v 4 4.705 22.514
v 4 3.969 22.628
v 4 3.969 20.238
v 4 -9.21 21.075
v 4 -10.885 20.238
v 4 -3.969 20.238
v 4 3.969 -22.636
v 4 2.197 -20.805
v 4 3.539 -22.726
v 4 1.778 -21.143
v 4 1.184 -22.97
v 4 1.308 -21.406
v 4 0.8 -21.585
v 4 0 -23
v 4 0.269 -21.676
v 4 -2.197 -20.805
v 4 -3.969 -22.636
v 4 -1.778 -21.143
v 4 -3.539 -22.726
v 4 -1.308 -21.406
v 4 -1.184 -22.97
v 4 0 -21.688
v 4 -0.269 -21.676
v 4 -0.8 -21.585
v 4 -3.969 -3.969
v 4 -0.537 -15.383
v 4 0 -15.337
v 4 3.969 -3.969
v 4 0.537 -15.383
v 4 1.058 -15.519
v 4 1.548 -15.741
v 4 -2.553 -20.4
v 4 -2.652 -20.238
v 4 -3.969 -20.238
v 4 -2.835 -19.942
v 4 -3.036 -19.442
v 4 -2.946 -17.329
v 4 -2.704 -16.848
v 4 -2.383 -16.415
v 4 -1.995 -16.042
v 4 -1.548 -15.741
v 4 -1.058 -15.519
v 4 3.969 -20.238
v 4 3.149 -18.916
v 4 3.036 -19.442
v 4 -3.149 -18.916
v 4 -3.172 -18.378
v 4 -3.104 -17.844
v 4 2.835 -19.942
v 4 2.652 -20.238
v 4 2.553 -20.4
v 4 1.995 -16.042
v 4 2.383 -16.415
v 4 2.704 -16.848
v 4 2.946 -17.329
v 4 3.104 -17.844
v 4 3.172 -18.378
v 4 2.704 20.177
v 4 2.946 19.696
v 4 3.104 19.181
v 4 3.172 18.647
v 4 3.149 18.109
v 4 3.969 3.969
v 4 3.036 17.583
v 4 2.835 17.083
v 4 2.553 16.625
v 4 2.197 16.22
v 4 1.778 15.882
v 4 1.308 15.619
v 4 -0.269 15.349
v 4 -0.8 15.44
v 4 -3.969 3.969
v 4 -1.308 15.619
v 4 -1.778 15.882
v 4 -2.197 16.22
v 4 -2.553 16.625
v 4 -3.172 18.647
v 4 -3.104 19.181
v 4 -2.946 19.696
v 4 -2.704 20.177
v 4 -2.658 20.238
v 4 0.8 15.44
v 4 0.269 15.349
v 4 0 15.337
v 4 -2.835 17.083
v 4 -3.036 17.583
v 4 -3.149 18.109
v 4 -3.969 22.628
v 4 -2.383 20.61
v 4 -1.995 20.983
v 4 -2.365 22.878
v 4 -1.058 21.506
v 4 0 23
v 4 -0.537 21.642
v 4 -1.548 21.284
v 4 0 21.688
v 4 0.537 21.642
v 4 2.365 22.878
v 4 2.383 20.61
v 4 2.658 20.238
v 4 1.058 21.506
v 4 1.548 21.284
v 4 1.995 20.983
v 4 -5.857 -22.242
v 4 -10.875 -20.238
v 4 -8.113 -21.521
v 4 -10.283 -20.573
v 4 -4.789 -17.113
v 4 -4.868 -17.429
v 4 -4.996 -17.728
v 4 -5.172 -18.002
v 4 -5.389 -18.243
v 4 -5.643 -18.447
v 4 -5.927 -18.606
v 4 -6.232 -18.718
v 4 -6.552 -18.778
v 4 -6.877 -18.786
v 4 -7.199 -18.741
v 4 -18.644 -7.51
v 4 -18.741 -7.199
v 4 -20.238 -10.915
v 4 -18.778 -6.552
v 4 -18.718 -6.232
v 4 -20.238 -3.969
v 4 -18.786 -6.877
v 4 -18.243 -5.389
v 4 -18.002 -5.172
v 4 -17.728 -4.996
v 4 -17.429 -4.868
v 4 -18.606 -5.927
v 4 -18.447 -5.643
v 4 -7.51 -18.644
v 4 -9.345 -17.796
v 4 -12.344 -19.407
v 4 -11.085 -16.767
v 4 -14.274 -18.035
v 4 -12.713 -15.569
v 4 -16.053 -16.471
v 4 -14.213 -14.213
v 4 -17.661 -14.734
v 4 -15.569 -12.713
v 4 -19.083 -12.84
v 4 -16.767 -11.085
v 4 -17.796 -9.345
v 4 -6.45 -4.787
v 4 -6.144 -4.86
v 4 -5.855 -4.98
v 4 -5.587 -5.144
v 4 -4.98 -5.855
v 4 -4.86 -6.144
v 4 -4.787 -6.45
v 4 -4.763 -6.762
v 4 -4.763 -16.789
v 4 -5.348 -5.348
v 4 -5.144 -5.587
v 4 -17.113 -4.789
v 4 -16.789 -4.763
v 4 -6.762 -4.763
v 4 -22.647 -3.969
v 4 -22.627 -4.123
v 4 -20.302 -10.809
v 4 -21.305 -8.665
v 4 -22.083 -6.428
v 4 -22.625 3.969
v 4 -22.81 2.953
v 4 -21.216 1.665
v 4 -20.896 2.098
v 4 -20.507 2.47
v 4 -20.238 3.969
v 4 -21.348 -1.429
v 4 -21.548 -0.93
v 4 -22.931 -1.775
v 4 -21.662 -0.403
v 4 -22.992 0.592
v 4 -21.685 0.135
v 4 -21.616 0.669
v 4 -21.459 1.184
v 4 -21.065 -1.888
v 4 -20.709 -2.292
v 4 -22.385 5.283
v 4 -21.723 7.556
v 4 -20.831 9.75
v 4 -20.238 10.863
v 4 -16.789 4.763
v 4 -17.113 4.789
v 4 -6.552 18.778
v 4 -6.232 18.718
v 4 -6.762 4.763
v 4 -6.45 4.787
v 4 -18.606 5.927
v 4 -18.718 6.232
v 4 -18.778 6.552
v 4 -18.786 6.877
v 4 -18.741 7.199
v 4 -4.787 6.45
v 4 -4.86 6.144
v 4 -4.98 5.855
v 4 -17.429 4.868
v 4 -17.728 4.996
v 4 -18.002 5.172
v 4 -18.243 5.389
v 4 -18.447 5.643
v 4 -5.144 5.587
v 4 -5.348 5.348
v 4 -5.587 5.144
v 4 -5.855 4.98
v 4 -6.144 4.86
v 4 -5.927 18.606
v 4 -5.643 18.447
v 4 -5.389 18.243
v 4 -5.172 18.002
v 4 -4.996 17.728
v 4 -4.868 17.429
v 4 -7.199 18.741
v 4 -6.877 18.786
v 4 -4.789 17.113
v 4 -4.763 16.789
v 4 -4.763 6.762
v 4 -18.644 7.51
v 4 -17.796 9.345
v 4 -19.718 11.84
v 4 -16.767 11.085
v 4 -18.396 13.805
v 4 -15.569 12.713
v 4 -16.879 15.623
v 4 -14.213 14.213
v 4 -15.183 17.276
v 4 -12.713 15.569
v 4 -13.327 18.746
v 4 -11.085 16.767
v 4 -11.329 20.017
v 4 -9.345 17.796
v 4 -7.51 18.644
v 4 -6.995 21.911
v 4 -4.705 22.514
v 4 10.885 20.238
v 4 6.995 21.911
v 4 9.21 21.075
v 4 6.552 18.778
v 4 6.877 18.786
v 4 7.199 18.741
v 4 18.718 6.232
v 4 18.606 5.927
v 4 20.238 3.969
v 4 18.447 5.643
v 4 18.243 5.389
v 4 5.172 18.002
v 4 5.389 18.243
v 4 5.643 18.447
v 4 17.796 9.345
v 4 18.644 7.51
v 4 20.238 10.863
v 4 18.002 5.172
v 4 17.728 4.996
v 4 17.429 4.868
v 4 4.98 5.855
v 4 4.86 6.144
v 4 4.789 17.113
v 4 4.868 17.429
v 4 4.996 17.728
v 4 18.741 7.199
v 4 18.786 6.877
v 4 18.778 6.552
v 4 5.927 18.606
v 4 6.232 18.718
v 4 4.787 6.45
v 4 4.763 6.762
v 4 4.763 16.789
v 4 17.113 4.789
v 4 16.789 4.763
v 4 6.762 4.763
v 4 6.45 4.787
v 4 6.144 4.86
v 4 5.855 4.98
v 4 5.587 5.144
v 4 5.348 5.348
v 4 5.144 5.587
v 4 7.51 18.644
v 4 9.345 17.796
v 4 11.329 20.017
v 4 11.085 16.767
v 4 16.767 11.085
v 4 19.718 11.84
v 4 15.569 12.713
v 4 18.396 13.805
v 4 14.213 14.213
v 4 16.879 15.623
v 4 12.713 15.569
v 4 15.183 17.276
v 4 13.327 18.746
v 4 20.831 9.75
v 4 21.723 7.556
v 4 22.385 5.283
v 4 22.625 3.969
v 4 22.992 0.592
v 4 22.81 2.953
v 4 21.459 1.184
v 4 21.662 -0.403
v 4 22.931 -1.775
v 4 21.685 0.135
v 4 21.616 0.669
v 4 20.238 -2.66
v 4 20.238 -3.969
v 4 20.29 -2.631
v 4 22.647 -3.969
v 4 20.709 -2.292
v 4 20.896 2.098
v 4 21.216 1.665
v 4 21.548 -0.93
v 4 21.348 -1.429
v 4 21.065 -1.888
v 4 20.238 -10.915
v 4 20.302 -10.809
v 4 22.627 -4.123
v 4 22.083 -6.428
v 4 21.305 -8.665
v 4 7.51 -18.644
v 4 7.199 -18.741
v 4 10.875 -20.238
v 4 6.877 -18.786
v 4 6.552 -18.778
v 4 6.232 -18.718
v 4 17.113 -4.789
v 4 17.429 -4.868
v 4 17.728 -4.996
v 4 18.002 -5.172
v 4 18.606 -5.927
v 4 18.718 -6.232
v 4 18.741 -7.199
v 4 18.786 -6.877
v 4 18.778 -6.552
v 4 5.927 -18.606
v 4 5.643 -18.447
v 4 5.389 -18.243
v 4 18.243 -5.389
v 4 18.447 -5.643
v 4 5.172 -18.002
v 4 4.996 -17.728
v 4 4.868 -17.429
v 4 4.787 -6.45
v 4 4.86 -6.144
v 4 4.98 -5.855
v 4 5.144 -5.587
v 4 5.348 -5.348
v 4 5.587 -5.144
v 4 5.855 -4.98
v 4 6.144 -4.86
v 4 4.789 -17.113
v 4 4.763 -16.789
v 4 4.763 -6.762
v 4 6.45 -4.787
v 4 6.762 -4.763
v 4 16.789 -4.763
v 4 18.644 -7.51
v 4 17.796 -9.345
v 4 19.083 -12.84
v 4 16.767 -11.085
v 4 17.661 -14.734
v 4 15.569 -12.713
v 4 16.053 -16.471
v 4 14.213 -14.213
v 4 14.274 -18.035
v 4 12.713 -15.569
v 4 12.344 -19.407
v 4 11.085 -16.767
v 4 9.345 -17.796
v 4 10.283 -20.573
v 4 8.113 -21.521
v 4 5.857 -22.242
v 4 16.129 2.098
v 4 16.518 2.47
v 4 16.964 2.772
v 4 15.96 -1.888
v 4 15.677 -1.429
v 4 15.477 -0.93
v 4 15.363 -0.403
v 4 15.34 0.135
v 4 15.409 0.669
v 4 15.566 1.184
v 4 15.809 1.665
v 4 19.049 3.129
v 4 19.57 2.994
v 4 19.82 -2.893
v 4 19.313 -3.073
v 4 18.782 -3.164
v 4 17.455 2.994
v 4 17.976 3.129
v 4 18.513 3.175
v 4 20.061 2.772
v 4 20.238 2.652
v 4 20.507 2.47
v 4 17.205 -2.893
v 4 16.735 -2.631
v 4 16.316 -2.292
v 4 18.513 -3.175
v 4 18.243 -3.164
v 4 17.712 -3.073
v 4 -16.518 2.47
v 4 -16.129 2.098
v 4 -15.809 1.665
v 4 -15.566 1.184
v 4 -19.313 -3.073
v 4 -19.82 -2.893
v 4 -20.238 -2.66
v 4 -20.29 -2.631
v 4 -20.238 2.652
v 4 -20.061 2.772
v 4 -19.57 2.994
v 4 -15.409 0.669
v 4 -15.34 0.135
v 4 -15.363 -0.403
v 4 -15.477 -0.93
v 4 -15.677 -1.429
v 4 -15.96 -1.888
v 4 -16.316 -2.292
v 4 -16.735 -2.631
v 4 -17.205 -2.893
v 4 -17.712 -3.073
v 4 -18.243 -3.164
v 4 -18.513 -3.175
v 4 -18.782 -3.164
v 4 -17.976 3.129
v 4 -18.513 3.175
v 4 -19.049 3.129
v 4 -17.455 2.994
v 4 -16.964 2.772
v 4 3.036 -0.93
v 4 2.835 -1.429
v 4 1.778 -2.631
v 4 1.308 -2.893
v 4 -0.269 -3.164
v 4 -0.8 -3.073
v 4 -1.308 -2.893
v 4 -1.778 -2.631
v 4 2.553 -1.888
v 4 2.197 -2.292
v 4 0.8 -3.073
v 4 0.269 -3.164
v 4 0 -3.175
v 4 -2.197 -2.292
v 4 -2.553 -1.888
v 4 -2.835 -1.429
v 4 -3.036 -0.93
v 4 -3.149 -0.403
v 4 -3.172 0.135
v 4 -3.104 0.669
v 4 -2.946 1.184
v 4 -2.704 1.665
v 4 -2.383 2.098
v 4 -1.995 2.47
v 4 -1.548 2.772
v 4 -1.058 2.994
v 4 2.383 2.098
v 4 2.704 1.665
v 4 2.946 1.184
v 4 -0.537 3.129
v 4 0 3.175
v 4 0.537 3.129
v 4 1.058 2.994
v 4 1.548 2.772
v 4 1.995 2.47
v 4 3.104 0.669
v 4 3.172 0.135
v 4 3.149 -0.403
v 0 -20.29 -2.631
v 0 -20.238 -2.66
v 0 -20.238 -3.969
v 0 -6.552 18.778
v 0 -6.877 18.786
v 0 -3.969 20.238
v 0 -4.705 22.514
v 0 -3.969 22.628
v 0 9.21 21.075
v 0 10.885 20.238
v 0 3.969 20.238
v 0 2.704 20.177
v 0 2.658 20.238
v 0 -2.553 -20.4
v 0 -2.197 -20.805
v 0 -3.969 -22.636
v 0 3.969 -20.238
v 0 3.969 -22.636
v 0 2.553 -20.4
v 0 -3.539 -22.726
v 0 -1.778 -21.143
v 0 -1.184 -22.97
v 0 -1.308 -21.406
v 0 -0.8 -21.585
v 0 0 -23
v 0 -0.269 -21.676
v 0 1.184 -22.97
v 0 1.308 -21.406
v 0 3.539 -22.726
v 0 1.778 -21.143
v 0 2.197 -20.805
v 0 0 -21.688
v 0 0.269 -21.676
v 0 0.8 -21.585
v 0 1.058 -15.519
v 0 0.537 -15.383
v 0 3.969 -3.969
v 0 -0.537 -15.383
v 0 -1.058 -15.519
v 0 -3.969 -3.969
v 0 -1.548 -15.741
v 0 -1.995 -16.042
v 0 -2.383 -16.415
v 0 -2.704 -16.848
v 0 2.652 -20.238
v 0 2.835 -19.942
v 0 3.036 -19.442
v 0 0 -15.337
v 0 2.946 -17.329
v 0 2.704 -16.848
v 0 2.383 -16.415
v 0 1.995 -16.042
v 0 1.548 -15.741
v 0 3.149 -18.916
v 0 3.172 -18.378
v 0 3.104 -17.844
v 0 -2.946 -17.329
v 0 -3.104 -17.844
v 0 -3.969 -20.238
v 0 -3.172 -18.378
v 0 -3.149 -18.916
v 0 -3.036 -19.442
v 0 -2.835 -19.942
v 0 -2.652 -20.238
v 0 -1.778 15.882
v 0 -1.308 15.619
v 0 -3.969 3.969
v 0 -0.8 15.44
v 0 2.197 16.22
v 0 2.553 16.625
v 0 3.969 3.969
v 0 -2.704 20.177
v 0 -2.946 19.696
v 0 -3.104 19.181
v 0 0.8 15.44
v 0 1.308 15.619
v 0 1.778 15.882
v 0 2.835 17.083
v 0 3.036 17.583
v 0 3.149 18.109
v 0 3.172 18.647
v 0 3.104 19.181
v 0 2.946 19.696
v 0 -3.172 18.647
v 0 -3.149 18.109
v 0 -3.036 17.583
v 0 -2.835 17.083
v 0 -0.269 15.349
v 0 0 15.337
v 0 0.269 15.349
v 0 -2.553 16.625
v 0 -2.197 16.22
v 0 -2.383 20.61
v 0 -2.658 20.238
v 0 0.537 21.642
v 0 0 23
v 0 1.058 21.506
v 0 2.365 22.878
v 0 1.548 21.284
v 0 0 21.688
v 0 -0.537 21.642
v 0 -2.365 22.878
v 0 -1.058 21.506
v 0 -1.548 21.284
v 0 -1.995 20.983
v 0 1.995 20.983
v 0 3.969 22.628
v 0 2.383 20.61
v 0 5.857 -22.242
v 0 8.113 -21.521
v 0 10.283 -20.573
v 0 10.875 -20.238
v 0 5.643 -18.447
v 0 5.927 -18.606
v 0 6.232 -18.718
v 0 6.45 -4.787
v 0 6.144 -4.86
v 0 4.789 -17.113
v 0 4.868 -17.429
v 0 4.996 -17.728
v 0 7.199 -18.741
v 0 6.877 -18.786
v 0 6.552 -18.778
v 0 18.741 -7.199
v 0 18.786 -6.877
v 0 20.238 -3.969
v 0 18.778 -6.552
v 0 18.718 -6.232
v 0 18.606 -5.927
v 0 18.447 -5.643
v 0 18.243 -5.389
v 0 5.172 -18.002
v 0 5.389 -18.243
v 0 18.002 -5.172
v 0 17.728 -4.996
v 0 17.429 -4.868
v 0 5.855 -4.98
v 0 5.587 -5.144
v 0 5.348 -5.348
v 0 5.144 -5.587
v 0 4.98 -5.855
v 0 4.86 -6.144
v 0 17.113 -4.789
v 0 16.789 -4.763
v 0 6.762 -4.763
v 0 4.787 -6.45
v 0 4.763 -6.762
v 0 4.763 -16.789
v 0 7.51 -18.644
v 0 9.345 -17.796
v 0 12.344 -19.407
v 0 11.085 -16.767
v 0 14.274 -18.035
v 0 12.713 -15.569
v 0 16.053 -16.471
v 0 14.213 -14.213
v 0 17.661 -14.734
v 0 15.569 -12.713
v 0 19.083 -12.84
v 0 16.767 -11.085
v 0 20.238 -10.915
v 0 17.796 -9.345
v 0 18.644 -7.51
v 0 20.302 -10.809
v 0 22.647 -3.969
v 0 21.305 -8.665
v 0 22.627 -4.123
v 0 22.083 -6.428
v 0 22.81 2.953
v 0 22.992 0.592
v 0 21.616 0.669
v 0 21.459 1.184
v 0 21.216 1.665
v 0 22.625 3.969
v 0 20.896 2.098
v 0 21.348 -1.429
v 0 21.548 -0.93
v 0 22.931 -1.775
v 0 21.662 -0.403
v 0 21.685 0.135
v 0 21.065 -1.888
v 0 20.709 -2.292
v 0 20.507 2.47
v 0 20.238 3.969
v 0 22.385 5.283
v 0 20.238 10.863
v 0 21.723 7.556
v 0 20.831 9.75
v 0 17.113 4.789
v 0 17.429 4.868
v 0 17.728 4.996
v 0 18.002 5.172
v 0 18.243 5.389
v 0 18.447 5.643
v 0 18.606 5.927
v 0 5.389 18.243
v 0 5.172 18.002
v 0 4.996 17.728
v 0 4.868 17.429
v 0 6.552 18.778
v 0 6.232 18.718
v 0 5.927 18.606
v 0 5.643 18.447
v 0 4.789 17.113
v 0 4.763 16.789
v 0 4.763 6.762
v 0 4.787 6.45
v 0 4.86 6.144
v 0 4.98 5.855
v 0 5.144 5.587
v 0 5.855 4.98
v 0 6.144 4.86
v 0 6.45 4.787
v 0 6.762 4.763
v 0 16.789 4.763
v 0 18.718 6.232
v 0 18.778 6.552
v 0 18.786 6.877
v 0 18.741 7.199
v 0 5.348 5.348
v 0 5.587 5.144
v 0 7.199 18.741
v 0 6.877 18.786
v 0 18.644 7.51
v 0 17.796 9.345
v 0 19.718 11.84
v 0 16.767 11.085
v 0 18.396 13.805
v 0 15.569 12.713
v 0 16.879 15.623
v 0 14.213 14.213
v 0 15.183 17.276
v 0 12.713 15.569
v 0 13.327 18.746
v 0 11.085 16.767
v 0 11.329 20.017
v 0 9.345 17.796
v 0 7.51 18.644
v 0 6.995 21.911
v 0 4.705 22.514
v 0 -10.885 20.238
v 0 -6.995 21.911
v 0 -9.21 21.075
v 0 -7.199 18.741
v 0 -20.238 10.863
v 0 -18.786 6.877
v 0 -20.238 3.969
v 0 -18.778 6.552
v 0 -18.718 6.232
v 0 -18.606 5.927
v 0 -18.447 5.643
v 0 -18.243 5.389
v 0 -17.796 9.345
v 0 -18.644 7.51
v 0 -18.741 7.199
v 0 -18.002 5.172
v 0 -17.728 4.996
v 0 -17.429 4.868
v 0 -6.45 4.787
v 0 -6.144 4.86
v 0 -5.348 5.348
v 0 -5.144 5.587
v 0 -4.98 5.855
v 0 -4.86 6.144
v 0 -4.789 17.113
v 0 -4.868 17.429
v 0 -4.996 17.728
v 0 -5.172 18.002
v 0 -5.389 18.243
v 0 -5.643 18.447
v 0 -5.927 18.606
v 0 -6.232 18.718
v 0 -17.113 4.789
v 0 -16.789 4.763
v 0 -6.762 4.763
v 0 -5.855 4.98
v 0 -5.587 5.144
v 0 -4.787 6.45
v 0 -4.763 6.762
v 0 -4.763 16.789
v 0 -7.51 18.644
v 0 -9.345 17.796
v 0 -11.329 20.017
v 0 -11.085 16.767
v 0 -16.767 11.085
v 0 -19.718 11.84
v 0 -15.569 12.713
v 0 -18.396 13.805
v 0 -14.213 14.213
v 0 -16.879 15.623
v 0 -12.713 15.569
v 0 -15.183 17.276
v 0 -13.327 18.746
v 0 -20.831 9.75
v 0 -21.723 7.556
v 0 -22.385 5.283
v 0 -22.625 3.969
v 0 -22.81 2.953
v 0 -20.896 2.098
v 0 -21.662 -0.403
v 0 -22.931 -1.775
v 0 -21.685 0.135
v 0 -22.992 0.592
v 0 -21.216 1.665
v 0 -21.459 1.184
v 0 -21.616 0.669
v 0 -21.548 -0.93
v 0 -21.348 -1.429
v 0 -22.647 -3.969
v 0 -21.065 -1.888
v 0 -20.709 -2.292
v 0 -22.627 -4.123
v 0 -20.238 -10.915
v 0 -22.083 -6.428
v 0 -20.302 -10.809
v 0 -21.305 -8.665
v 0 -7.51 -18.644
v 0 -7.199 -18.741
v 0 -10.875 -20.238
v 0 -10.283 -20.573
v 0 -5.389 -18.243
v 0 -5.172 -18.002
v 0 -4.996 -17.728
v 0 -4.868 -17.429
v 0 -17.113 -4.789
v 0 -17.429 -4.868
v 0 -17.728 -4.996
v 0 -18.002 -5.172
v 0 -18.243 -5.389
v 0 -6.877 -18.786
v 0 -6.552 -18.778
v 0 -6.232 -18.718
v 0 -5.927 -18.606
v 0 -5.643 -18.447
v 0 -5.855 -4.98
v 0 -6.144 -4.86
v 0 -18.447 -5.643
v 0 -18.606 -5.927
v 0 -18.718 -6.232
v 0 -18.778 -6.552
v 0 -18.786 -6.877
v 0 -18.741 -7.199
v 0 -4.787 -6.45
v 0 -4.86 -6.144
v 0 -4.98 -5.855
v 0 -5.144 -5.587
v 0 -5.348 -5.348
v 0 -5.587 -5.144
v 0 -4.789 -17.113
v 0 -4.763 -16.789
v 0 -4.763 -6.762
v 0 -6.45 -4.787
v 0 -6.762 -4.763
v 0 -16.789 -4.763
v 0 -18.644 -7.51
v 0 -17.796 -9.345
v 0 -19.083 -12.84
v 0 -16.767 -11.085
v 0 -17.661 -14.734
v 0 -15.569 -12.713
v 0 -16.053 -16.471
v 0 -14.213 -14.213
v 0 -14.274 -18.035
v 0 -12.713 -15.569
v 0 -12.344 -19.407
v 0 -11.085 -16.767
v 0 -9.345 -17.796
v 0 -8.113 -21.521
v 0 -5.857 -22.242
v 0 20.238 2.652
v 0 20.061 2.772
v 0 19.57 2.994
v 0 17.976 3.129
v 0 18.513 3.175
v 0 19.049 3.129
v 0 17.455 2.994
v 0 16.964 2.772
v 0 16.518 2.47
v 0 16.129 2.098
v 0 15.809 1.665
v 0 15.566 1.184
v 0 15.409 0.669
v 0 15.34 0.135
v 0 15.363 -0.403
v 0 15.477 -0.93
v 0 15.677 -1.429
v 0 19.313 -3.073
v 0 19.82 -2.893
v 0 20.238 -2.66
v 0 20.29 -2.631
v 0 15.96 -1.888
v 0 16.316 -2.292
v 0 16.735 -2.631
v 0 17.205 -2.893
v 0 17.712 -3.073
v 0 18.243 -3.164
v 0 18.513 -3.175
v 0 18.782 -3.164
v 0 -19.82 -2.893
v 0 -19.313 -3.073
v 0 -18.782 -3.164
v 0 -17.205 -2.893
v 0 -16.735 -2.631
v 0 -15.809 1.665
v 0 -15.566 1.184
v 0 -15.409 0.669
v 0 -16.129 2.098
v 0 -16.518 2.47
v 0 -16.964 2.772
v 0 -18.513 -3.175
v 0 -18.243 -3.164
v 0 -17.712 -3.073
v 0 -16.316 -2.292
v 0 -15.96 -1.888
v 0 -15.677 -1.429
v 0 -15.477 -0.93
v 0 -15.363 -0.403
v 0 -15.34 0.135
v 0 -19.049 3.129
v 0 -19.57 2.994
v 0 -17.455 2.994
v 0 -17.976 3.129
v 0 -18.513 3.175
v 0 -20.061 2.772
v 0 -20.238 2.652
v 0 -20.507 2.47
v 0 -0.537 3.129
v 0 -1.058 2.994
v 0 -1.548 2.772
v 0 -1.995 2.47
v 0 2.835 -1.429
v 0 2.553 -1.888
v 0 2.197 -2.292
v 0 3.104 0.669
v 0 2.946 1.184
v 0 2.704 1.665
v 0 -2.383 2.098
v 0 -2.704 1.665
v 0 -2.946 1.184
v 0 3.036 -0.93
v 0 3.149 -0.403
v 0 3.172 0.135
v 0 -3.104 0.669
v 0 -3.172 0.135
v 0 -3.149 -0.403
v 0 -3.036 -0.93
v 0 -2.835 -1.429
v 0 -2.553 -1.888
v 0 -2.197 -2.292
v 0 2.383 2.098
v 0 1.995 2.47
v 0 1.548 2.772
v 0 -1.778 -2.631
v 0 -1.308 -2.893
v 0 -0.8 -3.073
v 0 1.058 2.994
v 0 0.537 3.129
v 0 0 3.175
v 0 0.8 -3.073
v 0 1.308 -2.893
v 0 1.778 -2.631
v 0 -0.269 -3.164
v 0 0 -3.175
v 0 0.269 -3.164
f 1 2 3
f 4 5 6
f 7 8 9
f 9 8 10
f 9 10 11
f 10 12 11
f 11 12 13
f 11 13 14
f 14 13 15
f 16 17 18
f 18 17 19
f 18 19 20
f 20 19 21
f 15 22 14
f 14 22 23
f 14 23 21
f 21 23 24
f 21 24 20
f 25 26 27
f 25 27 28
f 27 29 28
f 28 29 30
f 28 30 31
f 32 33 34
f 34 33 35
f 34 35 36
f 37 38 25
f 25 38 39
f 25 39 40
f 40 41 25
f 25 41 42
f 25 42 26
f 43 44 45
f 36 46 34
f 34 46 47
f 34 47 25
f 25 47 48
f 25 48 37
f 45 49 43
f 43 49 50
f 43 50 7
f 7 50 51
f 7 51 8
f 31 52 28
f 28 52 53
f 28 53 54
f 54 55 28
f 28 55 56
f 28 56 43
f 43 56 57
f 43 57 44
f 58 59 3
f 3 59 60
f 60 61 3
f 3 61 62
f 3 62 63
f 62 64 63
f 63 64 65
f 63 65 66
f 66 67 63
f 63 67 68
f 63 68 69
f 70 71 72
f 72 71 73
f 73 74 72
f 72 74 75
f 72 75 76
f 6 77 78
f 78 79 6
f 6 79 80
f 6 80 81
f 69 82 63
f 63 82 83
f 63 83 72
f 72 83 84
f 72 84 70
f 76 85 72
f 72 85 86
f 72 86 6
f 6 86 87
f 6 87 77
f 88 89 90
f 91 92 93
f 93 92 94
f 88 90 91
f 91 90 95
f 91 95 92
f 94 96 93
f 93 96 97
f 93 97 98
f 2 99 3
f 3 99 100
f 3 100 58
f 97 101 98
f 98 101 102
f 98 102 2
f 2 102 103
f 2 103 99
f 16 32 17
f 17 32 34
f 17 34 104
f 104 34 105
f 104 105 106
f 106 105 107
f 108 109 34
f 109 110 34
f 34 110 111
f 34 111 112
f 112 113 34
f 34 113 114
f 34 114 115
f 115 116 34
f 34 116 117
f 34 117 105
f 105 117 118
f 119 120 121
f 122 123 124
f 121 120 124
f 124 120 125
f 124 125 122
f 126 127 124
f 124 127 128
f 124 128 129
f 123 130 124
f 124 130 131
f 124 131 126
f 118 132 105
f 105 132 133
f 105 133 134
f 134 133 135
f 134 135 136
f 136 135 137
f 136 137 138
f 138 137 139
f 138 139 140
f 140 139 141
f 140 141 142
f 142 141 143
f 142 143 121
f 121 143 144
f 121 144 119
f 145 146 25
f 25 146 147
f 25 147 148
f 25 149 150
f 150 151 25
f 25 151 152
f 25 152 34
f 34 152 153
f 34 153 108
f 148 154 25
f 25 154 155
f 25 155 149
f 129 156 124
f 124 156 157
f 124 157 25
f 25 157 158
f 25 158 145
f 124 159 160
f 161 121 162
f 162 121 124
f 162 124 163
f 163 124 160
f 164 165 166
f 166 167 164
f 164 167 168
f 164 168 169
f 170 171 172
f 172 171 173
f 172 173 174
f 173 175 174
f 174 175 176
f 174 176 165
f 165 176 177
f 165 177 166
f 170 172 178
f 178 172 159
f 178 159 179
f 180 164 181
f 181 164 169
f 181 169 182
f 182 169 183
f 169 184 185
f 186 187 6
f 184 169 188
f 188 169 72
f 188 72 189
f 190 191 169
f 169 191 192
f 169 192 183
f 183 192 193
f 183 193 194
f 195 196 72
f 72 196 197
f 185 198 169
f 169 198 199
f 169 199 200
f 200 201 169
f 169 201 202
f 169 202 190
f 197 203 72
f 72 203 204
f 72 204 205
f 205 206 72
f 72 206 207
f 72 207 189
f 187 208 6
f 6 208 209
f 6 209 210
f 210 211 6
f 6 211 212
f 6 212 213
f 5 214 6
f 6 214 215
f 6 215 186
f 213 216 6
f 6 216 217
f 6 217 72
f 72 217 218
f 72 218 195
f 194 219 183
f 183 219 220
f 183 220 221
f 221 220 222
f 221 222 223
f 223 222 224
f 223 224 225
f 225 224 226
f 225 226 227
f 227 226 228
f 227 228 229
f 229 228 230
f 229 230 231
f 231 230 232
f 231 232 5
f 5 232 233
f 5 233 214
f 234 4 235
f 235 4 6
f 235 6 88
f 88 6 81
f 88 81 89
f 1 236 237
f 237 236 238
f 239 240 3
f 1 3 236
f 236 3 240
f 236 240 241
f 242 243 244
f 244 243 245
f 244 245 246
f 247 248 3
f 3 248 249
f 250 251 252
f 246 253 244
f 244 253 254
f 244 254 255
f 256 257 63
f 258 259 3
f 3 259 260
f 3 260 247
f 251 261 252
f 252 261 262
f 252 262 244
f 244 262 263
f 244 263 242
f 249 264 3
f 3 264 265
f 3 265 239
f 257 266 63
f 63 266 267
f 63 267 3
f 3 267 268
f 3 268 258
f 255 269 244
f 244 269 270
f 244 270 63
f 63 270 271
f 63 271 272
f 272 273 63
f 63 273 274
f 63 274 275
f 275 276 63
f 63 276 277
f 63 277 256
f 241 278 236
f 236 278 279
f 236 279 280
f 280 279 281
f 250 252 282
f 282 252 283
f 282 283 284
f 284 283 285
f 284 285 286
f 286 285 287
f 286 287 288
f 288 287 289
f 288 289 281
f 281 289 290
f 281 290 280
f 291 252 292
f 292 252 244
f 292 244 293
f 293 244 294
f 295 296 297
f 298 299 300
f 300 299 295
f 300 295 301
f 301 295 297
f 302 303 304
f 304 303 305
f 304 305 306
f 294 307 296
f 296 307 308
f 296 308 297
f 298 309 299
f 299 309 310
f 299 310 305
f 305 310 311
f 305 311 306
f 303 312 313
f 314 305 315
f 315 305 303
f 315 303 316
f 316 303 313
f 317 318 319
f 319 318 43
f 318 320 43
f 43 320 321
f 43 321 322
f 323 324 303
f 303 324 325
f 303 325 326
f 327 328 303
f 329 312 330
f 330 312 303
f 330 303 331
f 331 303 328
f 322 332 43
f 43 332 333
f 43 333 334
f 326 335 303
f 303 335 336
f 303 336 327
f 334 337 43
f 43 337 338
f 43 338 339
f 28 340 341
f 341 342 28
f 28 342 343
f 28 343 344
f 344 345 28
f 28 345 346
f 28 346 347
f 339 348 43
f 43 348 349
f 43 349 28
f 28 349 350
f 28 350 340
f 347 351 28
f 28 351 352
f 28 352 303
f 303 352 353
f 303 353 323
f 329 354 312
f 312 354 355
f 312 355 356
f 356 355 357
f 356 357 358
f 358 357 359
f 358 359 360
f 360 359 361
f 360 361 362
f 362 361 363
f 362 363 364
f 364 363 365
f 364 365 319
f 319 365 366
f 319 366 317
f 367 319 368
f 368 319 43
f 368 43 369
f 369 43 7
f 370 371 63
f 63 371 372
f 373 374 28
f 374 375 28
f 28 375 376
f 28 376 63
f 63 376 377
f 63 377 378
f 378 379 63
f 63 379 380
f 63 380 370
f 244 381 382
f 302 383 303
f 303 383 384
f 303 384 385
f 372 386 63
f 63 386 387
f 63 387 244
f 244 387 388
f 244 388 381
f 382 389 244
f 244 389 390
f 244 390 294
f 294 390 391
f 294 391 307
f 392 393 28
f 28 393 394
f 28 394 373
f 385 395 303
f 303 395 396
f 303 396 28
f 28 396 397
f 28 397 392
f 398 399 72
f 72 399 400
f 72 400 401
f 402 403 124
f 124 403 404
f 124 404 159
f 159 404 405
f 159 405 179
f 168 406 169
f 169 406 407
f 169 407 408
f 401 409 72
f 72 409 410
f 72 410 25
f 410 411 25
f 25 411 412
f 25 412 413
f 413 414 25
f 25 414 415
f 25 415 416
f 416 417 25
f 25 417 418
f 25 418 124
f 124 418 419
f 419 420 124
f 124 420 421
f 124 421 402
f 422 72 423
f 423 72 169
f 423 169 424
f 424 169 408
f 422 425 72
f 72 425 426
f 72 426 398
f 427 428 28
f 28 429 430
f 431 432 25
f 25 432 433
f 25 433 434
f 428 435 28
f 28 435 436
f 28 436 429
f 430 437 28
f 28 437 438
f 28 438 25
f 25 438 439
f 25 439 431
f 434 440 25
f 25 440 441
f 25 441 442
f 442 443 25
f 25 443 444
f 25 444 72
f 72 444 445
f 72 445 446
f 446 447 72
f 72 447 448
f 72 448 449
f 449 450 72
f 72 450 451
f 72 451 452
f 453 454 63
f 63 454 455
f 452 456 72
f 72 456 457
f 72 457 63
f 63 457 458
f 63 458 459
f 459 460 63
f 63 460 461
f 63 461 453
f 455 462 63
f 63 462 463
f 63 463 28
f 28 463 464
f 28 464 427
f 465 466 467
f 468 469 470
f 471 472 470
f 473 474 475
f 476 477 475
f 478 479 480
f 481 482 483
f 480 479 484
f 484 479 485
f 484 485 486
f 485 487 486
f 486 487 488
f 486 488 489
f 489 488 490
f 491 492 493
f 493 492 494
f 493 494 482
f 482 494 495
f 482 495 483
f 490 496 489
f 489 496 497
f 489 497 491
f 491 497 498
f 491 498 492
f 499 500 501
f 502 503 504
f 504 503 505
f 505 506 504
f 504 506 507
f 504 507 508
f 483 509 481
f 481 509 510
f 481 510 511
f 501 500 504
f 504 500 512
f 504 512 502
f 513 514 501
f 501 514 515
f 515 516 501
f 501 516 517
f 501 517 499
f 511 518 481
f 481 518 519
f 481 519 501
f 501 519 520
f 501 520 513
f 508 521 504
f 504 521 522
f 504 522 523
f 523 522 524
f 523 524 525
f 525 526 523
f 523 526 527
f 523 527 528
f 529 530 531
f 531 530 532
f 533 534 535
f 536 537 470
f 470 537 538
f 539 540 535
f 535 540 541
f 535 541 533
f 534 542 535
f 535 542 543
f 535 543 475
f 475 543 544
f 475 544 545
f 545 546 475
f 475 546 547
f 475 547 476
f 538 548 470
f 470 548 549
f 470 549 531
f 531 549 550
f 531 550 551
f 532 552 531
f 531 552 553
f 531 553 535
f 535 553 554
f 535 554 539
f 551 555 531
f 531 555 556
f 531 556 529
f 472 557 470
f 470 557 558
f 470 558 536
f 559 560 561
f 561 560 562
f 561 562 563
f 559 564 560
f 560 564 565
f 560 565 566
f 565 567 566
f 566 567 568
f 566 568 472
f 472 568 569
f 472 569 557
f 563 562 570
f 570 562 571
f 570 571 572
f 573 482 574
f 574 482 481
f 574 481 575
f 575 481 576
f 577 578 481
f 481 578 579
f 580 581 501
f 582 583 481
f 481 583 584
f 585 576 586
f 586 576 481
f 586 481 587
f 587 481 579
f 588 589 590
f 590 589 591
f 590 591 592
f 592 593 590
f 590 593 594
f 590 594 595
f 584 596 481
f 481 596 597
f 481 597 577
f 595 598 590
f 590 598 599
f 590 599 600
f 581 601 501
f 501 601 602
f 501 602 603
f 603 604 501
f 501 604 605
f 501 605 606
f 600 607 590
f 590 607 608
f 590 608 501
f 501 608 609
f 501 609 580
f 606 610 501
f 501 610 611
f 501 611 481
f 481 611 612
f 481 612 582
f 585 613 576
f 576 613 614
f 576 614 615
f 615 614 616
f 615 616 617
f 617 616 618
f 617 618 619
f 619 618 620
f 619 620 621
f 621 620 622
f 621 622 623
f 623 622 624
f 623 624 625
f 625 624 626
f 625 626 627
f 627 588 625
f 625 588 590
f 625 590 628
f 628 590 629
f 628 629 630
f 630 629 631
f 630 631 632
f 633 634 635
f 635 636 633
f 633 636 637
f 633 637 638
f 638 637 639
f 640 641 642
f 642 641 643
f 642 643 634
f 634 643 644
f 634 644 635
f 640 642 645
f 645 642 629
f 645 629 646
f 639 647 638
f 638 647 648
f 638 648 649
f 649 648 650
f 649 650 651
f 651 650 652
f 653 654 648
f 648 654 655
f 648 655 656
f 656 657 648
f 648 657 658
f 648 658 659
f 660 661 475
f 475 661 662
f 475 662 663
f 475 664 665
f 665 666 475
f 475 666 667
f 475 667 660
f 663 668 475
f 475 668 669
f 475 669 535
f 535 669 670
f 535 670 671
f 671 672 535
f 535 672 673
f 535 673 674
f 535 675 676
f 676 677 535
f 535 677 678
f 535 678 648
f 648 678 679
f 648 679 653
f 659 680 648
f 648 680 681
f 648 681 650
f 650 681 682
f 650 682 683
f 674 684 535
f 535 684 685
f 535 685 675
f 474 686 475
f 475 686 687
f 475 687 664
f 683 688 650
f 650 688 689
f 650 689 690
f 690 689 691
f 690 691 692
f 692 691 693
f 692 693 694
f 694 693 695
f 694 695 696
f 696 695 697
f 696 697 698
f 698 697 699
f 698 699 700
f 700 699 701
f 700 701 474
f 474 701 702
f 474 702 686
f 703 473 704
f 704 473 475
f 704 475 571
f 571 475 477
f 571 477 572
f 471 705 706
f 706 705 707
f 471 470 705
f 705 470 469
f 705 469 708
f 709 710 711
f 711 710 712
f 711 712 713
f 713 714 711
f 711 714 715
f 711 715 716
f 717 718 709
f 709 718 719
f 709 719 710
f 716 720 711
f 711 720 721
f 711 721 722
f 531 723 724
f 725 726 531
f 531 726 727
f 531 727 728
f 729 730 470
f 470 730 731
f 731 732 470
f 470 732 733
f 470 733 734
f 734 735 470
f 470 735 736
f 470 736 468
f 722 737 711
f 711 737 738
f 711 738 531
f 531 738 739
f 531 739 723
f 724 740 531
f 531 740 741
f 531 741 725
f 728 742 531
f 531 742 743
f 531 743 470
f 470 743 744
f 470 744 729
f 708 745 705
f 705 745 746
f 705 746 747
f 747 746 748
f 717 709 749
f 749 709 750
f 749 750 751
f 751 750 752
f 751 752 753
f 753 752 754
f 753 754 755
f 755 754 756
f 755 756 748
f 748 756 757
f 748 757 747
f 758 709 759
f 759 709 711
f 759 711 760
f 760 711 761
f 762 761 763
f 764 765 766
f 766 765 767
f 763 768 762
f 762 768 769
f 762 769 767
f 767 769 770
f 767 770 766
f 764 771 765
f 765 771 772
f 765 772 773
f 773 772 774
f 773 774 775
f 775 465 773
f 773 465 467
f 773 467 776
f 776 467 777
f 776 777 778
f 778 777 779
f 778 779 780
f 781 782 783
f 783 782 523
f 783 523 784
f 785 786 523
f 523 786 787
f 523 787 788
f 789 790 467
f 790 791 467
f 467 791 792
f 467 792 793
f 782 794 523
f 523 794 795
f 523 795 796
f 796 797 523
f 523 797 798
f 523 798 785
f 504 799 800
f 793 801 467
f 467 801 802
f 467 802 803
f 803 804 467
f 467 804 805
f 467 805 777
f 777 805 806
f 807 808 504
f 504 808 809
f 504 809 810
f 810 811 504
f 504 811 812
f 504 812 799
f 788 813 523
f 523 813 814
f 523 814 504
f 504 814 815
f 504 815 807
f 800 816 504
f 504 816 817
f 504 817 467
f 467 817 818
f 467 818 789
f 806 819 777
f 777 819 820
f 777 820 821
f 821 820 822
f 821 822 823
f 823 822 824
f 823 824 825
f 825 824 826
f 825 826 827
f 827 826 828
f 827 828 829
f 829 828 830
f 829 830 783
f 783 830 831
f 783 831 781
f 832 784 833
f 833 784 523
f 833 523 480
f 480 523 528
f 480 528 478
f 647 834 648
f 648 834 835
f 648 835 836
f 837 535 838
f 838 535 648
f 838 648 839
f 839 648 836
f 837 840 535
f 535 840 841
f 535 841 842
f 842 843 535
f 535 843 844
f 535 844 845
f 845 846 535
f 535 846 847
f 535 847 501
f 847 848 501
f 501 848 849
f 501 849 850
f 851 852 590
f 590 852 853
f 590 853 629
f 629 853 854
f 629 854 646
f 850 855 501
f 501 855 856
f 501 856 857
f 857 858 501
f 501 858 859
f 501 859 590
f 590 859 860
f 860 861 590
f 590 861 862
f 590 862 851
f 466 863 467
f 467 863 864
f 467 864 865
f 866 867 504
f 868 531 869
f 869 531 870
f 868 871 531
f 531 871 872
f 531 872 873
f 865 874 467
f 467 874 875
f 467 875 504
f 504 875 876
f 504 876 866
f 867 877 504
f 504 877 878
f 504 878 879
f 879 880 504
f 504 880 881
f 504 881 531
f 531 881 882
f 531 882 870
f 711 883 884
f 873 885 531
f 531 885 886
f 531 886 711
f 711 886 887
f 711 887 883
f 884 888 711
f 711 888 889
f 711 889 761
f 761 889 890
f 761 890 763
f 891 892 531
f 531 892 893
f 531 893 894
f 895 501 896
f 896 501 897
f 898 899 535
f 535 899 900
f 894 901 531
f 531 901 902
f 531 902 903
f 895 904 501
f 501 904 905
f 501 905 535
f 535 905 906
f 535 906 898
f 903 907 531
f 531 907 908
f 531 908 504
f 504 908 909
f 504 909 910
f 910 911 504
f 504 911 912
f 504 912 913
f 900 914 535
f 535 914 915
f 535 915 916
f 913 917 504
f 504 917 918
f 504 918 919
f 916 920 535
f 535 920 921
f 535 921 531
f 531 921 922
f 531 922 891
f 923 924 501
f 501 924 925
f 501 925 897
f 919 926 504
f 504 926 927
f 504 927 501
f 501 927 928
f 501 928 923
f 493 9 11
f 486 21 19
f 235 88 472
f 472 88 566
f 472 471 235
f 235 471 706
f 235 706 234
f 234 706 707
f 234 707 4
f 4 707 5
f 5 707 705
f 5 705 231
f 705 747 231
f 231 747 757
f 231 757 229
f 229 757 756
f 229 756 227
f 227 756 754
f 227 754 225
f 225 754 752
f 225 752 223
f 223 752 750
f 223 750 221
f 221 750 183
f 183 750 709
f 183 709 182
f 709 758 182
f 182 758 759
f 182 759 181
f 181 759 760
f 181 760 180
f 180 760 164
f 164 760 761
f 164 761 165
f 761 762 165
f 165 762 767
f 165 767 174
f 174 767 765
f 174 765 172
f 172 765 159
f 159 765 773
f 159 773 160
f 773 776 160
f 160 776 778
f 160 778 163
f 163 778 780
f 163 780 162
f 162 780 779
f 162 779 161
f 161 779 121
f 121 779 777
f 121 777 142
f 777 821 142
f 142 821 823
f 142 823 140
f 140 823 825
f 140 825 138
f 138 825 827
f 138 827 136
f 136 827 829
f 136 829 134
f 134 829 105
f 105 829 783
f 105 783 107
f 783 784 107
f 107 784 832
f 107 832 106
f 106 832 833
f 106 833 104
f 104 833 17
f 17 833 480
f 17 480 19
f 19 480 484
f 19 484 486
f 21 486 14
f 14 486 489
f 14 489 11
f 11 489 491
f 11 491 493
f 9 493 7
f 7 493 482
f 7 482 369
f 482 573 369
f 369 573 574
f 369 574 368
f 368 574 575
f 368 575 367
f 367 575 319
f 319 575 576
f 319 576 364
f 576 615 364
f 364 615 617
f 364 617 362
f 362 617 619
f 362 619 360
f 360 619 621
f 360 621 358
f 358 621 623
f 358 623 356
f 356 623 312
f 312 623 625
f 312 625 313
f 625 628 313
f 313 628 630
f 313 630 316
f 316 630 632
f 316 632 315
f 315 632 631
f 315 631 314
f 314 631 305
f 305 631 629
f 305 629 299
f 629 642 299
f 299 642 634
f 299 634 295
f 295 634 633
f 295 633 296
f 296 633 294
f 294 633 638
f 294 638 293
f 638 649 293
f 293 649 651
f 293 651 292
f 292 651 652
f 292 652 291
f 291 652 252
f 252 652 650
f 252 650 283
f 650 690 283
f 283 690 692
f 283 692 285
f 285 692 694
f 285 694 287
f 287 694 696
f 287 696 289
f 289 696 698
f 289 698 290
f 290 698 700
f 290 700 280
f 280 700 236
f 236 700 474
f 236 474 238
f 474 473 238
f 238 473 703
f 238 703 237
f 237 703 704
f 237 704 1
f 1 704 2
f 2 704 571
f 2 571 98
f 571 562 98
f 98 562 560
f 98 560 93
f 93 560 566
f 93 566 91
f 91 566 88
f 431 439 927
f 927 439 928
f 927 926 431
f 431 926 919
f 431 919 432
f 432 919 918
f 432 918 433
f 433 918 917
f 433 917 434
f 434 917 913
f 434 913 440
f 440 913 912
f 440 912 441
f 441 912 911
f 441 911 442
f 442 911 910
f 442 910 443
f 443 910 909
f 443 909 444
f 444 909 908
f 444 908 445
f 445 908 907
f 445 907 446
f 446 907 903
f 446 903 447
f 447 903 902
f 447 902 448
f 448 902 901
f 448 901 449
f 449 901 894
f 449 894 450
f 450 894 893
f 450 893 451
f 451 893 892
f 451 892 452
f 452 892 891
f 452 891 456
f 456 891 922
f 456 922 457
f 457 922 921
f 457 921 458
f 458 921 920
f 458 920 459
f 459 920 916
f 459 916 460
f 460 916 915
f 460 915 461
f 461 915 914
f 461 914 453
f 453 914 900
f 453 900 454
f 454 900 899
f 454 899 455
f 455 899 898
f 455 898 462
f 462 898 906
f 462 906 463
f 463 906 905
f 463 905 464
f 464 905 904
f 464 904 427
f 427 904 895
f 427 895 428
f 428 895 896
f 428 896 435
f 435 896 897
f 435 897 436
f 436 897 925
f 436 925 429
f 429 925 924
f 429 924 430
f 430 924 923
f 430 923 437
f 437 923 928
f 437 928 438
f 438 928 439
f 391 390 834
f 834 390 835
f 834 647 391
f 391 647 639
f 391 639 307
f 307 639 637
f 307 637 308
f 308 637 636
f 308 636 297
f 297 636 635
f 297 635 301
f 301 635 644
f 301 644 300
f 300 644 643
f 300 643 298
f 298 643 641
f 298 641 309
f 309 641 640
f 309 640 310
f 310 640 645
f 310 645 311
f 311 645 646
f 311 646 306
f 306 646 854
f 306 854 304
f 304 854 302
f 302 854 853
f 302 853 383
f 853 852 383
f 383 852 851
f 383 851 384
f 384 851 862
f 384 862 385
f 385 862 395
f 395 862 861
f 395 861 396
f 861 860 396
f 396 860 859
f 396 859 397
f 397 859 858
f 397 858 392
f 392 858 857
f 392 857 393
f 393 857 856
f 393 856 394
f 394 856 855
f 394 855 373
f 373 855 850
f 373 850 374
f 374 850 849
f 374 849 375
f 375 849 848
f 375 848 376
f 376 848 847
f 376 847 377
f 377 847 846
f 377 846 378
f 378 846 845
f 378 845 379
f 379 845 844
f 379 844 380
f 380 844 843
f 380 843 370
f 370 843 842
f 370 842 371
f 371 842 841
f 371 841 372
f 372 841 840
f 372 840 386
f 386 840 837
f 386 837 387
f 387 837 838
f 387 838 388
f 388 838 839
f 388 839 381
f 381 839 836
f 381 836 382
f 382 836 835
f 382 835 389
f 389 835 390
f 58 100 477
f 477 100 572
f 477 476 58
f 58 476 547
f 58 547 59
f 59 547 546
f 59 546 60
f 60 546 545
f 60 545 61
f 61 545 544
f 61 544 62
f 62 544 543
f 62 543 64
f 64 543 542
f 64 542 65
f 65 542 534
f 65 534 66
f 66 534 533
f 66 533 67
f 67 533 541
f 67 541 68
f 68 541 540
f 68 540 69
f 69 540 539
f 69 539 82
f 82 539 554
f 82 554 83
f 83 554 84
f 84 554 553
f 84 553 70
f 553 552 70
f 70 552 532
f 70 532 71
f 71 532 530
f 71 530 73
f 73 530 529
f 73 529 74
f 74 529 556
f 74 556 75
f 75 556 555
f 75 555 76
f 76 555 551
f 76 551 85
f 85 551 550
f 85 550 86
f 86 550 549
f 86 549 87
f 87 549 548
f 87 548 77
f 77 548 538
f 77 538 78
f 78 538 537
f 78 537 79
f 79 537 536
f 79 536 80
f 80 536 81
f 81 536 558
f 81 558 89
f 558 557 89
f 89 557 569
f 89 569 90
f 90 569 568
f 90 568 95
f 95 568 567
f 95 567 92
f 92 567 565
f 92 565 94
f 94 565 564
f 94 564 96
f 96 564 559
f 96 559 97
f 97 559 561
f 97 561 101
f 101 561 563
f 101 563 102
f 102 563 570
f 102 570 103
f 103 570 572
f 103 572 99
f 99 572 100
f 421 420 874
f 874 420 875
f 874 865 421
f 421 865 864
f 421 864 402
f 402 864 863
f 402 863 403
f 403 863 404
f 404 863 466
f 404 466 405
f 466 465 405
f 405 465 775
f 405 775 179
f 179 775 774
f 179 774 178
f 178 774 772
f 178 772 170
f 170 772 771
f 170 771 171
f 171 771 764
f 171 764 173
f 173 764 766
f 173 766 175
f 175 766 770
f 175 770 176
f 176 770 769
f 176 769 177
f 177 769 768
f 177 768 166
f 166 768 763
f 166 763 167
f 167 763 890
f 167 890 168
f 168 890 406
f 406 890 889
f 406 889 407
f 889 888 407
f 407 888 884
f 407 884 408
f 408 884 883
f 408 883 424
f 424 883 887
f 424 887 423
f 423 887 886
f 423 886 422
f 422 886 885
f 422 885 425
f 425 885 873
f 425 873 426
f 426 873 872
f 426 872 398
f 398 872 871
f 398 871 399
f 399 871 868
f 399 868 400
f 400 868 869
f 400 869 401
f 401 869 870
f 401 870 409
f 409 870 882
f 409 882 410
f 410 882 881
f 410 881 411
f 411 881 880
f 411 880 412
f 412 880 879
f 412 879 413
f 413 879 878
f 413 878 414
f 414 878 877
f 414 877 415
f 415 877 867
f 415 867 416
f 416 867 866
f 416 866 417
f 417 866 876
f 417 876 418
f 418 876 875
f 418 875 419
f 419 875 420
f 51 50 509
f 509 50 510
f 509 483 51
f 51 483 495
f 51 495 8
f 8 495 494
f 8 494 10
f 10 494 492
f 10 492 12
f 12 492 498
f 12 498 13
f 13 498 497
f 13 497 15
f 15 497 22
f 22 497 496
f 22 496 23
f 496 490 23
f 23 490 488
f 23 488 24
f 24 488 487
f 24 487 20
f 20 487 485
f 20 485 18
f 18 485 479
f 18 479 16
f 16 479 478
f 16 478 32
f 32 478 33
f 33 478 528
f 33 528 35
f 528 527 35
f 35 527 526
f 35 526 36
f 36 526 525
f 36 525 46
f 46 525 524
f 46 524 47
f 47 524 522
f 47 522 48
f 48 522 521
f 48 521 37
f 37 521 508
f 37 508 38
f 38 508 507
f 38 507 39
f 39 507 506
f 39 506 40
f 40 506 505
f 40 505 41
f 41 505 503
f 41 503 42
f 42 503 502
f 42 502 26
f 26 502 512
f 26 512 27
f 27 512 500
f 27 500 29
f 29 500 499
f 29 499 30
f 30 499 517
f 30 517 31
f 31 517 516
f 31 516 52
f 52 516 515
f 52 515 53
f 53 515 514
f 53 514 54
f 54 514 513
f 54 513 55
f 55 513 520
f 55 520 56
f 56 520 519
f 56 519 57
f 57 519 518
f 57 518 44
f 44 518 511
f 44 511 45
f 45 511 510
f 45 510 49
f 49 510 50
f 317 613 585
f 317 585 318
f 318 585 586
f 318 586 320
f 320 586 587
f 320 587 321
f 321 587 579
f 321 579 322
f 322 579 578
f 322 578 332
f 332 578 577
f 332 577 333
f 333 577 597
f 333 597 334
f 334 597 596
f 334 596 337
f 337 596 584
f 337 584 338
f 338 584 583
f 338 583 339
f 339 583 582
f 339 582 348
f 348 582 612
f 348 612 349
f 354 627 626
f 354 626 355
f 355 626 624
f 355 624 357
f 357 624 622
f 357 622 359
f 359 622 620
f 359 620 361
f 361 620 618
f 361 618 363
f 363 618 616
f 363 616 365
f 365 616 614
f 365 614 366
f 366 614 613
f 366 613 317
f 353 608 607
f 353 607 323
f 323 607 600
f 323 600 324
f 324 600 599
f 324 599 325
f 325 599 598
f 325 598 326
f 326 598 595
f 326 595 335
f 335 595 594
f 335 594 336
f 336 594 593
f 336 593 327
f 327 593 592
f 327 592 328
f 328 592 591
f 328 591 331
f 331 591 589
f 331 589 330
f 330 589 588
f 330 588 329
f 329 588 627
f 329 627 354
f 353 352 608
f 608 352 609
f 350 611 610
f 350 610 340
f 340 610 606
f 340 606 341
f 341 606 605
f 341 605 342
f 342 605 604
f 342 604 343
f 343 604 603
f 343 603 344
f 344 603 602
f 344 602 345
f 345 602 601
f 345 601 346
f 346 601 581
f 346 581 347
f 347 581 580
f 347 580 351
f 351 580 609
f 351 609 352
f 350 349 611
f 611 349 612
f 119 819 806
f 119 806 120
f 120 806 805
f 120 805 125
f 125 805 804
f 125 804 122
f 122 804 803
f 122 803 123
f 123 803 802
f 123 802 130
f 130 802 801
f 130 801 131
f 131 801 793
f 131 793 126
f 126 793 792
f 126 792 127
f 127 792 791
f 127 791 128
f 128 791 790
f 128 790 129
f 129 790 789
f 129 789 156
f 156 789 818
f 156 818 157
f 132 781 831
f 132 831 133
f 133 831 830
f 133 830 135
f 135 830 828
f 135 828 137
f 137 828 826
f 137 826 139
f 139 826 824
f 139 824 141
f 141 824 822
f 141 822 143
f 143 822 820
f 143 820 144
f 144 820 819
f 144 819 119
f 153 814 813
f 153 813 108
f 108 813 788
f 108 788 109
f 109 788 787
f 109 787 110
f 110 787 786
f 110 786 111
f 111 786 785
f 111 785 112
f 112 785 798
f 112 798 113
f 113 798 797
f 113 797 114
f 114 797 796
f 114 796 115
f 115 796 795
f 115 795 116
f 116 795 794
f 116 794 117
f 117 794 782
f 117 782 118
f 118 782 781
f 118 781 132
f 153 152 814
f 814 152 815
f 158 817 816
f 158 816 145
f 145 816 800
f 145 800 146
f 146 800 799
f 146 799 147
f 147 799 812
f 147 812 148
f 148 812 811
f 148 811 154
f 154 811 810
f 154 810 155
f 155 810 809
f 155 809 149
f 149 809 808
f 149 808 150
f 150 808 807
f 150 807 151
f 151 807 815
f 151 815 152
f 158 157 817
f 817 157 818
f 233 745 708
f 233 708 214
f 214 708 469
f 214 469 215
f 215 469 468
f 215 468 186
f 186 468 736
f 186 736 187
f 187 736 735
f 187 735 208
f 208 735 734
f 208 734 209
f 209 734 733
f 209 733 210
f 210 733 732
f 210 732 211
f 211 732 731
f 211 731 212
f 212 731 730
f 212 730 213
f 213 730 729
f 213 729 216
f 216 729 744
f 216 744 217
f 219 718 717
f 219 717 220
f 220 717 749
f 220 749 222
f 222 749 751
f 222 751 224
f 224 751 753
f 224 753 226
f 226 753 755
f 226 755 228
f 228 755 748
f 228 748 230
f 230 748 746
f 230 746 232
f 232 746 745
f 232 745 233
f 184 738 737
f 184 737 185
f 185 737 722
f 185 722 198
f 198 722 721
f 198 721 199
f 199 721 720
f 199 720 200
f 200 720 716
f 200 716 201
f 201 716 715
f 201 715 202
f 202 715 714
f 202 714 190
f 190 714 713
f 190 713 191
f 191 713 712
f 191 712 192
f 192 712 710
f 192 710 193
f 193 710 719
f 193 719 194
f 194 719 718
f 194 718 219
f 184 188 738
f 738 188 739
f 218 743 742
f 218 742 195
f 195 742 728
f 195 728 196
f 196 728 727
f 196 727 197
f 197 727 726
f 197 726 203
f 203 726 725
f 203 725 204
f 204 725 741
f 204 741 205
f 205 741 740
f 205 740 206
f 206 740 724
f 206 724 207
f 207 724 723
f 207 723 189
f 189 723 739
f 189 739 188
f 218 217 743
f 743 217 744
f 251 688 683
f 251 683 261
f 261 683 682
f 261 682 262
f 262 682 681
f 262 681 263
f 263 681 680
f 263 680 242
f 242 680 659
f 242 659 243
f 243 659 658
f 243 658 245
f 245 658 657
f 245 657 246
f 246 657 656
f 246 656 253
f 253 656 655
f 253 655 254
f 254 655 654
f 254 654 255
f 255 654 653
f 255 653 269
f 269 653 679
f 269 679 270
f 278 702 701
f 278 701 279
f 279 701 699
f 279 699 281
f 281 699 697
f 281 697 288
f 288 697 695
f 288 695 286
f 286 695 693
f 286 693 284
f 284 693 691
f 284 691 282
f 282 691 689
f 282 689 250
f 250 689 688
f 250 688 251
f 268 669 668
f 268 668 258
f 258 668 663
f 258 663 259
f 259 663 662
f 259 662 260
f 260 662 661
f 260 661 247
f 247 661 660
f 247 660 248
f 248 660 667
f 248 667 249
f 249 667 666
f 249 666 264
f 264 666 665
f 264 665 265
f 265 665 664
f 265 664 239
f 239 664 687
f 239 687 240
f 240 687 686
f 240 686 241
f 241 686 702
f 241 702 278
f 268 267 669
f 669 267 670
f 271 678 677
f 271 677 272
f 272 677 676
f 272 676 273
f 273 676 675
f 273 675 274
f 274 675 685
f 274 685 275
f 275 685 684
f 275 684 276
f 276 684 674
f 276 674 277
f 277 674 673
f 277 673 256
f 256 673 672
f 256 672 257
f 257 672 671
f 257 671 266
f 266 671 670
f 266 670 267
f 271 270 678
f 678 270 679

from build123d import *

# Parameters (mm, degrees)
SKETCH1_R           = 23
SKETCH1_R_2         = 3.175
BOSS_EXTRUDE1_DEPTH = 4


with BuildPart() as part:
    # Sketch1 → Boss-Extrude1 (new body)
    with BuildSketch(Plane(origin=(0, 0, 0), x_dir=(0, 0, -1), z_dir=(1, 0, 0))):
        Circle(SKETCH1_R)
        Circle(SKETCH1_R_2, mode=Mode.SUBTRACT)
        with Locations((0, 18.5125)):
            Circle(SKETCH1_R_2, mode=Mode.SUBTRACT)
        with Locations((-18.5125, 0)):
            Circle(SKETCH1_R_2, mode=Mode.SUBTRACT)
        with Locations((0, -18.5125)):
            Circle(SKETCH1_R_2, mode=Mode.SUBTRACT)
        with Locations((18.5125, 0)):
            Circle(SKETCH1_R_2, mode=Mode.SUBTRACT)
        with BuildLine():
            Line((4.7625, 6.7625), (4.7625, 16.789240416))
            ThreePointArc((4.7625, 16.789240416), (5.643231296, 18.446719698), (7.509737569, 18.644405103))
            ThreePointArc((7.509737569, 18.644405103), (14.212846302, 14.212846302), (18.644405103, 7.509737569))
            ThreePointArc((18.644405103, 7.509737569), (18.446719698, 5.643231296), (16.789240416, 4.7625))
            Line((16.789240416, 4.7625), (6.7625, 4.7625))
            ThreePointArc((6.7625, 4.7625), (5.348286438, 5.348286438), (4.7625, 6.7625))
        make_face(mode=Mode.SUBTRACT)
        with BuildLine():
            Line((6.7625, -4.7625), (16.789240416, -4.7625))
            ThreePointArc((16.789240416, -4.7625), (18.446719698, -5.643231296), (18.644405103, -7.509737569))
            ThreePointArc((18.644405103, -7.509737569), (14.212846302, -14.212846302), (7.509737569, -18.644405103))
            ThreePointArc((7.509737569, -18.644405103), (5.643231296, -18.446719698), (4.7625, -16.789240416))
            Line((4.7625, -16.789240416), (4.7625, -6.7625))
            ThreePointArc((4.7625, -6.7625), (5.348286438, -5.348286438), (6.7625, -4.7625))
        make_face(mode=Mode.SUBTRACT)
        with BuildLine():
            Line((-4.7625, -6.7625), (-4.7625, -16.789240416))
            ThreePointArc((-4.7625, -16.789240416), (-5.643231296, -18.446719698), (-7.509737569, -18.644405103))
            ThreePointArc((-7.509737569, -18.644405103), (-14.212846302, -14.212846302), (-18.644405103, -7.509737569))
            ThreePointArc((-18.644405103, -7.509737569), (-18.446719698, -5.643231296), (-16.789240416, -4.7625))
            Line((-16.789240416, -4.7625), (-6.7625, -4.7625))
            ThreePointArc((-6.7625, -4.7625), (-5.348286438, -5.348286438), (-4.7625, -6.7625))
        make_face(mode=Mode.SUBTRACT)
        with BuildLine():
            Line((-6.7625, 4.7625), (-16.789240416, 4.7625))
            ThreePointArc((-16.789240416, 4.7625), (-18.446719698, 5.643231296), (-18.644405103, 7.509737569))
            ThreePointArc((-18.644405103, 7.509737569), (-14.212846302, 14.212846302), (-7.509737569, 18.644405103))
            ThreePointArc((-7.509737569, 18.644405103), (-5.643231296, 18.446719698), (-4.7625, 16.789240416))
            Line((-4.7625, 16.789240416), (-4.7625, 6.7625))
            ThreePointArc((-4.7625, 6.7625), (-5.348286438, 5.348286438), (-6.7625, 4.7625))
        make_face(mode=Mode.SUBTRACT)
    extrude(amount=BOSS_EXTRUDE1_DEPTH)


solid = part.part
